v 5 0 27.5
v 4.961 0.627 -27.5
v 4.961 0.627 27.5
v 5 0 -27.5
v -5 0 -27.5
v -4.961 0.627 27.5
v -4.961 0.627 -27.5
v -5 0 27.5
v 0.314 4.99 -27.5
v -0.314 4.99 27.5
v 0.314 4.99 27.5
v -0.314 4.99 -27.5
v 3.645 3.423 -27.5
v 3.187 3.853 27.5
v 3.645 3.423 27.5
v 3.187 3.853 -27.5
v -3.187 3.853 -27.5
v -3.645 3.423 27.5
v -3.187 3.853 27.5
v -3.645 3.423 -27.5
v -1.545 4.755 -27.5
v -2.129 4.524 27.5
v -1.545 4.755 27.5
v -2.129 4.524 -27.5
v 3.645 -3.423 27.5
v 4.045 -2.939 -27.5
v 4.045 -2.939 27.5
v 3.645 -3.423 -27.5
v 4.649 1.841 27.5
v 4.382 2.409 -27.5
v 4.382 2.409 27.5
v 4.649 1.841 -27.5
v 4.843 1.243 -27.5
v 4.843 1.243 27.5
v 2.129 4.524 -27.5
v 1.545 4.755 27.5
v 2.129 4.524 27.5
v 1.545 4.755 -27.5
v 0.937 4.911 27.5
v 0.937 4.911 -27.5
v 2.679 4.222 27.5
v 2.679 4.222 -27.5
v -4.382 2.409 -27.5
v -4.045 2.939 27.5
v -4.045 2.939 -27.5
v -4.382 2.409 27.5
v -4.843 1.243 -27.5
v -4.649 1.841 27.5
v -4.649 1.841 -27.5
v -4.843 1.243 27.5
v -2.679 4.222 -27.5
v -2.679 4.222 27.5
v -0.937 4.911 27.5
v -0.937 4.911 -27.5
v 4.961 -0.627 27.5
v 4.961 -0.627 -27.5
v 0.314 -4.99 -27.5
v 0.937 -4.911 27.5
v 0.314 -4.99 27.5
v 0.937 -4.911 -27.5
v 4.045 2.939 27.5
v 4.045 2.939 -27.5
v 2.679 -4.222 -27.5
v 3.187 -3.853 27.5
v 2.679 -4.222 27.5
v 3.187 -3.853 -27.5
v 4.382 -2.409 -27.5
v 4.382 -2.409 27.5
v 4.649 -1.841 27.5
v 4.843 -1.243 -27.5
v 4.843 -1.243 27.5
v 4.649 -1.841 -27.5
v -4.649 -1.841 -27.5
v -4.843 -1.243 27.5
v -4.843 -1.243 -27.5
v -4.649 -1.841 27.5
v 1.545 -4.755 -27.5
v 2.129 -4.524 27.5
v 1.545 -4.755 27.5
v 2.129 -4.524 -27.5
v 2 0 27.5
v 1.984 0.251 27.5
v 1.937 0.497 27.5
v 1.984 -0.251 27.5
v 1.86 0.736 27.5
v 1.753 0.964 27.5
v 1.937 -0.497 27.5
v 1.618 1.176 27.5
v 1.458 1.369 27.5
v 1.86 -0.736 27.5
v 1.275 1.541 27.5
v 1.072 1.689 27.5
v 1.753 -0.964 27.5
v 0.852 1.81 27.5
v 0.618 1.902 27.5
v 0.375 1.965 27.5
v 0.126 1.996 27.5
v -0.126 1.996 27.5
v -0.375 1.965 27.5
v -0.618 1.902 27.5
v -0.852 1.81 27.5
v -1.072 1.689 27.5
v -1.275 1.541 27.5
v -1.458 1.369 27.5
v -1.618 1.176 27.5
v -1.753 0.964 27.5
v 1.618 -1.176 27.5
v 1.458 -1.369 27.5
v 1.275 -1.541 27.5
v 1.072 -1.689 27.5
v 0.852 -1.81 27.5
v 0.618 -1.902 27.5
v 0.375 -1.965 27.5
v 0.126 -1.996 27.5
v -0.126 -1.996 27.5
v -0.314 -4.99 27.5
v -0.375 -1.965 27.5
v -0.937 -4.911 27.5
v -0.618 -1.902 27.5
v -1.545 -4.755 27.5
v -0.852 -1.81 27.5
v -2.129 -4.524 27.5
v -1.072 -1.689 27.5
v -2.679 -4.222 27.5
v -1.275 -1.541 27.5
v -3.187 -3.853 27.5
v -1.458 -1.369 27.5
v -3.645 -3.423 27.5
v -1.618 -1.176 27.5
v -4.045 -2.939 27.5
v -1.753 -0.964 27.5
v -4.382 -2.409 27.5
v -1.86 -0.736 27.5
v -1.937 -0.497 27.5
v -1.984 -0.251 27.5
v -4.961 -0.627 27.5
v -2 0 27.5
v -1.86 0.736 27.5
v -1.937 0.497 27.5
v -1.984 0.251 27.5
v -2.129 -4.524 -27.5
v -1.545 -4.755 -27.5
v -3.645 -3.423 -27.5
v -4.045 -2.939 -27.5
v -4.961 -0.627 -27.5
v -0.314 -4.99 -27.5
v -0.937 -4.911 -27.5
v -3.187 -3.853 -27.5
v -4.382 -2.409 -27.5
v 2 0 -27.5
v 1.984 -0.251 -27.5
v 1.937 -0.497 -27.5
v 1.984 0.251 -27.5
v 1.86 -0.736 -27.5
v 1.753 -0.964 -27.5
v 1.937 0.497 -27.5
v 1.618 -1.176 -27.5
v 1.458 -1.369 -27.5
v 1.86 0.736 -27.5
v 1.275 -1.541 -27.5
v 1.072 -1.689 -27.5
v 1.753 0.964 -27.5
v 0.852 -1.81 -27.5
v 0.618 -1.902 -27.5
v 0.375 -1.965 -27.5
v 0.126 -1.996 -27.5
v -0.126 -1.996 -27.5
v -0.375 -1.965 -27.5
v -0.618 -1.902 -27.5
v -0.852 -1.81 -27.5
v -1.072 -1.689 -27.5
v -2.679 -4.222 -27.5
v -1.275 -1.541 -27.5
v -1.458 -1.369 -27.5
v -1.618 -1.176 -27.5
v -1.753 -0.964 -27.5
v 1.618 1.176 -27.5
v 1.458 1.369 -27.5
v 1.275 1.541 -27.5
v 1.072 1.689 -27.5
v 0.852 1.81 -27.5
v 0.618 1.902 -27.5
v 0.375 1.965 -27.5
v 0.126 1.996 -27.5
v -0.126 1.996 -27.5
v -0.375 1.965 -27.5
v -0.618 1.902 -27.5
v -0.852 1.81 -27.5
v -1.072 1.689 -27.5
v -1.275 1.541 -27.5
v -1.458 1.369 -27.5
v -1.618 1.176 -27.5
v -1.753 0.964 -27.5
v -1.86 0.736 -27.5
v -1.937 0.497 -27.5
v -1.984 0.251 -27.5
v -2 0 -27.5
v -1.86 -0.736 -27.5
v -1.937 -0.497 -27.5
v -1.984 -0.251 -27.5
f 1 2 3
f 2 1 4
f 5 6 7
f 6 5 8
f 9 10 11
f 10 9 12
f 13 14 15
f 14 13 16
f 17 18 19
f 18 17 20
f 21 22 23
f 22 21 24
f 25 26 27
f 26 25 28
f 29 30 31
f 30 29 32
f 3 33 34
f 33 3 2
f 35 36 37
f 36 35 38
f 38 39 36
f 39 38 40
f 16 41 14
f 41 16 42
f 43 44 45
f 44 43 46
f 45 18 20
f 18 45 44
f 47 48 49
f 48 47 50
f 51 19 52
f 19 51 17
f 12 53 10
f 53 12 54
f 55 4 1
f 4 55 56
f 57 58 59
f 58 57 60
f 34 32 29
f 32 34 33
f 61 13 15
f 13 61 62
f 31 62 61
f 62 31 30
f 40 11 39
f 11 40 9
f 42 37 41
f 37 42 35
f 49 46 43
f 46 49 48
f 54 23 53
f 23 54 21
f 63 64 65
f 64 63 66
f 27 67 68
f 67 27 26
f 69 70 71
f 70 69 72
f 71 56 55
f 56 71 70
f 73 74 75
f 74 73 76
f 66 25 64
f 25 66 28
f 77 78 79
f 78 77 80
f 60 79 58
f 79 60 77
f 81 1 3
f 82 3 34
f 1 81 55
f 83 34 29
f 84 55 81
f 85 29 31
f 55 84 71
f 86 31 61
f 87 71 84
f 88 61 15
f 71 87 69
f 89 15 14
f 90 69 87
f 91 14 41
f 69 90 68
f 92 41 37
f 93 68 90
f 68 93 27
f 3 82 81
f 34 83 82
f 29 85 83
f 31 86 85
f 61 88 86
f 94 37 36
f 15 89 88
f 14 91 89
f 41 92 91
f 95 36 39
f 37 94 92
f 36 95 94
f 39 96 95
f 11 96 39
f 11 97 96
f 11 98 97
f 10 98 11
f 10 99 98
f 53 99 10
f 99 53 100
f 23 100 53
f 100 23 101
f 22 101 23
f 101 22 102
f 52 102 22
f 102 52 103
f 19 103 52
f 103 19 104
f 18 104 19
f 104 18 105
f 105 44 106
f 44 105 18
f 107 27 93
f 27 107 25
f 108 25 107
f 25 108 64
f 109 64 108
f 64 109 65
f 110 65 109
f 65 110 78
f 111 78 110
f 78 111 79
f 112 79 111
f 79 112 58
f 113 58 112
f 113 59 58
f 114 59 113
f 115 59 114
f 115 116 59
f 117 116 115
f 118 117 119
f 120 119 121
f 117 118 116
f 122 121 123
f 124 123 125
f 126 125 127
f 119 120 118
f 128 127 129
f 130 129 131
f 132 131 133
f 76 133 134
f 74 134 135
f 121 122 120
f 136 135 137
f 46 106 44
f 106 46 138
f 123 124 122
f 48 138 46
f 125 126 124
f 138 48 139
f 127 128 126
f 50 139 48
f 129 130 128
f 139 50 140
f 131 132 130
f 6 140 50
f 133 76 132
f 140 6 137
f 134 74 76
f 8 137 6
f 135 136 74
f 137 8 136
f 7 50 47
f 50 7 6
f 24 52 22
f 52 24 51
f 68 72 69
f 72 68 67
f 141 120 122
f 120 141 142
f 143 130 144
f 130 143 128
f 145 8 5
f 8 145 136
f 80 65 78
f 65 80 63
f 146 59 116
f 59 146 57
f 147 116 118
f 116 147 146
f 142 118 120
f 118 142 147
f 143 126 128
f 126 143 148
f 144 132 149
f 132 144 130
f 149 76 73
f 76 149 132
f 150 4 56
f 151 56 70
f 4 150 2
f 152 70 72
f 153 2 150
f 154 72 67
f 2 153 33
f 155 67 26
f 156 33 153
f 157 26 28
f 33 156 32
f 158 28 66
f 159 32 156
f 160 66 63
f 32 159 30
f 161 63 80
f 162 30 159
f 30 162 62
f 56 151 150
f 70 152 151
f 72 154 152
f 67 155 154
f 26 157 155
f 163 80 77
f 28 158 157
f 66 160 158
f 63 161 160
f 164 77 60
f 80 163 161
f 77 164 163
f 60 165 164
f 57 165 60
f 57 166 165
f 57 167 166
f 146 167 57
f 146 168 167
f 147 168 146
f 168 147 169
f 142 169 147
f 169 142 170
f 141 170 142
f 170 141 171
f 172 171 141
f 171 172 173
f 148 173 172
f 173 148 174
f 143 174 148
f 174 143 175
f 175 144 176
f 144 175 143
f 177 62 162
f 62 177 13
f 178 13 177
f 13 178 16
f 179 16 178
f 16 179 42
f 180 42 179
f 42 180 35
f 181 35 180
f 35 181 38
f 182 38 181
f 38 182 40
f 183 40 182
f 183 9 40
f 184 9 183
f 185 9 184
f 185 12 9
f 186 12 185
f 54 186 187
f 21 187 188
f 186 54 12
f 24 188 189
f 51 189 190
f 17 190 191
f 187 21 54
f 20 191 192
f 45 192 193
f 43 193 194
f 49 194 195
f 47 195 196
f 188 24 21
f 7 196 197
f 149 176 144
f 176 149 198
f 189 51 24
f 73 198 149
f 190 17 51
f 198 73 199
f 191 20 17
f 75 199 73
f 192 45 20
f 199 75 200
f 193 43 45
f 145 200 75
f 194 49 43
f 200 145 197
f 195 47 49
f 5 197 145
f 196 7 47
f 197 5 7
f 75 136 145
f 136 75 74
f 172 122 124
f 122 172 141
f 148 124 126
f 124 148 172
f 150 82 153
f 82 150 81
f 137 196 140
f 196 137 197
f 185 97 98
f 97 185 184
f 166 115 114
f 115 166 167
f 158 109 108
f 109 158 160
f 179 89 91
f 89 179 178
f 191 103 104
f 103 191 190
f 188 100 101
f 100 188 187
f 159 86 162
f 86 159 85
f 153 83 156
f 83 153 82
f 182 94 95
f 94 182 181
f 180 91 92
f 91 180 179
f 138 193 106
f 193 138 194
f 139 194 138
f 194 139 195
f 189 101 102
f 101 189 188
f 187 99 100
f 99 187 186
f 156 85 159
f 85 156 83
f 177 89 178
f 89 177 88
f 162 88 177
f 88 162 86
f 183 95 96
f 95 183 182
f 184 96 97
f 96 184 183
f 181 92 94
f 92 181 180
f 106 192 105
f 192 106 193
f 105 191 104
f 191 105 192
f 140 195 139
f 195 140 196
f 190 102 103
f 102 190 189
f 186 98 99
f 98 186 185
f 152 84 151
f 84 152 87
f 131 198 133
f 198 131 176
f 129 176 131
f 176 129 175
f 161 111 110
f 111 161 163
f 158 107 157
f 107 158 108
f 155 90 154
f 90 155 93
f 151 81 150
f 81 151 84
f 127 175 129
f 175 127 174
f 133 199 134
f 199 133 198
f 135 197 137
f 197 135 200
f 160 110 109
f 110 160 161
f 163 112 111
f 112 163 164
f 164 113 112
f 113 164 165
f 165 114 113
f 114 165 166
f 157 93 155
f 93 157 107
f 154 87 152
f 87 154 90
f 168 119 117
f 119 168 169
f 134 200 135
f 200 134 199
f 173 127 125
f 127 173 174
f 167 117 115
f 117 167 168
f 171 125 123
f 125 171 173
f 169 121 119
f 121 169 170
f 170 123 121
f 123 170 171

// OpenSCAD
$fn = 50;


difference() {
	union() {
		translate(v = [0, 0, -27.5000000000]) {
			cylinder(h = 55, r = 5.0000000000);
		}
	}
	union() {
		translate(v = [0, 0, -100.0000000000]) {
			cylinder(h = 200, r = 2.0000000000);
		}
	}
}
